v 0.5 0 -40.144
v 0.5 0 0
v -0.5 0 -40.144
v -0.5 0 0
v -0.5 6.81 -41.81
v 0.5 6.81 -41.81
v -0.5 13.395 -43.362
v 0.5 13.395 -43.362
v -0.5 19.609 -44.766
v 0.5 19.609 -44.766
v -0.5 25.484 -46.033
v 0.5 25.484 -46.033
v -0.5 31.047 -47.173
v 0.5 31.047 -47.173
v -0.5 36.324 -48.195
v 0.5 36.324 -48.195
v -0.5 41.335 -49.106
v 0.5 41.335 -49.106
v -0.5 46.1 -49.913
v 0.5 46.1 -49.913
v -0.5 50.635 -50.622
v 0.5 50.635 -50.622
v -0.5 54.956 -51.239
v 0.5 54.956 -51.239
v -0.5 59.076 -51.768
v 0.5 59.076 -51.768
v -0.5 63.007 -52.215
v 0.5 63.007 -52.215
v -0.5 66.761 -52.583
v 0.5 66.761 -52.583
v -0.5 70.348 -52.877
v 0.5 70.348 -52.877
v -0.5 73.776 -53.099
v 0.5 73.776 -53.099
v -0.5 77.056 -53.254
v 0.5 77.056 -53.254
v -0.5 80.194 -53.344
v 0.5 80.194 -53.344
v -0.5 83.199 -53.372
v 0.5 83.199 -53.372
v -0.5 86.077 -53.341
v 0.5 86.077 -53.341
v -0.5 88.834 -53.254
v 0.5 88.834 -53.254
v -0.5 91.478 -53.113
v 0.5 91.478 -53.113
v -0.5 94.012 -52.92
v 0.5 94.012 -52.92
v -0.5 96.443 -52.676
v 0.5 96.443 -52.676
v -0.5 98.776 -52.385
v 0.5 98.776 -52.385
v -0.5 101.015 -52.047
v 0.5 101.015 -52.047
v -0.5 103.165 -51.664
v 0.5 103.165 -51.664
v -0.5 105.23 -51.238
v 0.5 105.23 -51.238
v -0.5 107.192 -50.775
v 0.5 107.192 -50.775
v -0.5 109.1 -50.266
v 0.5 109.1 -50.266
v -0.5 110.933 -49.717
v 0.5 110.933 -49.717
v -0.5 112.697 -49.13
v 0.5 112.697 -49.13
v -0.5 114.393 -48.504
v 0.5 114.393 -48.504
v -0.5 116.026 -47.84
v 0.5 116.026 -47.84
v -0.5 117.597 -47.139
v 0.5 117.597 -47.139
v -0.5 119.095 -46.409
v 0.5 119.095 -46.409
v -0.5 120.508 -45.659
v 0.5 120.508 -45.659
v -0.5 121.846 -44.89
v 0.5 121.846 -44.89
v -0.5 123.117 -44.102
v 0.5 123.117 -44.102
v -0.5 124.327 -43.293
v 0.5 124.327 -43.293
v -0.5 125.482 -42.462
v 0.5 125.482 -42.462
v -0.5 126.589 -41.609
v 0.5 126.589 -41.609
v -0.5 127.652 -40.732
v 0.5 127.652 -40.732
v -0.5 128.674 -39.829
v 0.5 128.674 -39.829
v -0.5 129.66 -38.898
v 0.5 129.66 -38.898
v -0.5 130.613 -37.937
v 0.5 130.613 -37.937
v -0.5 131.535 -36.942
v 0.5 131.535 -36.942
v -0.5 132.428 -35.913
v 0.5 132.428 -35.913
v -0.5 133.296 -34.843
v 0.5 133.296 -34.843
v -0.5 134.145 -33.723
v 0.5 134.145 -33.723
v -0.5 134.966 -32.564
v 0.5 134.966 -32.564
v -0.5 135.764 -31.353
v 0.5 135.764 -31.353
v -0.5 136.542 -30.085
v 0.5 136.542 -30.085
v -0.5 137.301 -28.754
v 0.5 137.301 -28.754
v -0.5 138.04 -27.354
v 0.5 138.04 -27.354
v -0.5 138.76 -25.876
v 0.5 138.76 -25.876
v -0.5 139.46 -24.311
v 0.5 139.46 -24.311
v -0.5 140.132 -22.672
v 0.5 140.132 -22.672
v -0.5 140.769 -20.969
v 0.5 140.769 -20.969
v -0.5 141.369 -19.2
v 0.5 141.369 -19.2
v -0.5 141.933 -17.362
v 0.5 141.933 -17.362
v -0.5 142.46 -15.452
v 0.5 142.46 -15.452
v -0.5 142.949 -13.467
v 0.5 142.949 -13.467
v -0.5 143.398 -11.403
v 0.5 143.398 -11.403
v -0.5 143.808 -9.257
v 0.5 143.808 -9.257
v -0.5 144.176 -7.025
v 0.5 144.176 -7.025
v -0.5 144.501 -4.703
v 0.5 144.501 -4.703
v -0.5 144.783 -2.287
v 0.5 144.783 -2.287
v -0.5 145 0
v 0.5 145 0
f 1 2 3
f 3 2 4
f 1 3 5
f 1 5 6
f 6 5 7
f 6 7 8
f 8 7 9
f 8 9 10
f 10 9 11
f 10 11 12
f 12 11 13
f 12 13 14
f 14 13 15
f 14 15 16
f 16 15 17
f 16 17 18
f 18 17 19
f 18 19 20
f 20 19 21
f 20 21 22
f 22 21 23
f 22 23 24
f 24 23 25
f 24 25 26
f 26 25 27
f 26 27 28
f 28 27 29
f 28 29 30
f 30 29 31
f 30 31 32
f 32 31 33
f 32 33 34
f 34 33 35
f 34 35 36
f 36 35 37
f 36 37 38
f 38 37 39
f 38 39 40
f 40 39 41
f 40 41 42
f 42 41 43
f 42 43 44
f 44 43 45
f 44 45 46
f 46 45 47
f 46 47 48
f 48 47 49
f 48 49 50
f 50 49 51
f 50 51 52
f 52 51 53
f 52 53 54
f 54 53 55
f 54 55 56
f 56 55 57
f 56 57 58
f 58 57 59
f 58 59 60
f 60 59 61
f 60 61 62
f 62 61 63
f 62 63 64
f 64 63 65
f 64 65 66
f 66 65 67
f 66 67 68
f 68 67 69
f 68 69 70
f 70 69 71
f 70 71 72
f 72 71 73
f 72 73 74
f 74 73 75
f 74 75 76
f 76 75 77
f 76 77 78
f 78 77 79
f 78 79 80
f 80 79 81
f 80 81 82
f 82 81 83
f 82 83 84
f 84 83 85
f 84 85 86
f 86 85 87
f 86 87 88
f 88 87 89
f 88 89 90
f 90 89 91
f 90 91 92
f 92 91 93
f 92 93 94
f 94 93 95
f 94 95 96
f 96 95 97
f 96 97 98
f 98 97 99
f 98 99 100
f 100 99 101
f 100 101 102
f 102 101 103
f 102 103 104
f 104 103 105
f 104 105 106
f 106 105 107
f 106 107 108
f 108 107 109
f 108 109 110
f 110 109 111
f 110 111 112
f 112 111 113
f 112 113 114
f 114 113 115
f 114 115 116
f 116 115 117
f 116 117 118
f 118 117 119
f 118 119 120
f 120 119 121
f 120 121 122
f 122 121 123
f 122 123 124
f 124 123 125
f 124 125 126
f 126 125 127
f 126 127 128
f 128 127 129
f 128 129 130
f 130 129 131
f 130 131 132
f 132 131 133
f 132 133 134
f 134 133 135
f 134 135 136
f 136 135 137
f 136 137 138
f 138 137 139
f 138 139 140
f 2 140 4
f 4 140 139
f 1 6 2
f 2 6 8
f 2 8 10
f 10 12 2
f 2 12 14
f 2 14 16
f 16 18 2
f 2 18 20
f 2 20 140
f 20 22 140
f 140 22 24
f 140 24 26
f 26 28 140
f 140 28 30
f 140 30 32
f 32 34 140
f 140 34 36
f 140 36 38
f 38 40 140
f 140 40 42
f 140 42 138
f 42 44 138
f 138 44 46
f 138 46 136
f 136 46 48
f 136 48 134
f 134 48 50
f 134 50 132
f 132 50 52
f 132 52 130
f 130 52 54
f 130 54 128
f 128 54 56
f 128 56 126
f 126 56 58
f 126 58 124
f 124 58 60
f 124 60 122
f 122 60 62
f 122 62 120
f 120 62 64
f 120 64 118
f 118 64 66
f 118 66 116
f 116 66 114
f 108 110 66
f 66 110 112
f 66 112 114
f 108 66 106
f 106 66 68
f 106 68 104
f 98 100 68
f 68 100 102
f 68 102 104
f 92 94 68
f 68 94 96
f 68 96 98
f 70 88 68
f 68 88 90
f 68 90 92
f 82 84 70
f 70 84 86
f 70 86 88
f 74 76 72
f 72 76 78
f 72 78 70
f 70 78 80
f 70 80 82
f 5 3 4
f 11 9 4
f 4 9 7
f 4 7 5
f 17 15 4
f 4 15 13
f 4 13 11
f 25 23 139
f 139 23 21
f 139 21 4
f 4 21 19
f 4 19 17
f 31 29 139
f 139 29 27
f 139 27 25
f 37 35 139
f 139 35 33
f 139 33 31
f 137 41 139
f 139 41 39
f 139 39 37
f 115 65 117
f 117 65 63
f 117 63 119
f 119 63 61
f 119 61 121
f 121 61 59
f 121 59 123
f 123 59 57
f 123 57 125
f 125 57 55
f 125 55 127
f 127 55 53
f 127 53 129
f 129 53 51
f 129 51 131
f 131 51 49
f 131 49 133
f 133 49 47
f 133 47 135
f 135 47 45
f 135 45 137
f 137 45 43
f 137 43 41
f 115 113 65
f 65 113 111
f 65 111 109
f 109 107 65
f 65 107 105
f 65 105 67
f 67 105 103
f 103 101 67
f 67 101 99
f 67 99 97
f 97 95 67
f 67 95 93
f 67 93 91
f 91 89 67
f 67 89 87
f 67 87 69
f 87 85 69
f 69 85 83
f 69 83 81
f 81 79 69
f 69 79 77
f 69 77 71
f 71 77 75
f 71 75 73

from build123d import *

# Parameters (mm, degrees)
EXTRUDE_1_DEPTH   = 0.5
MOVE_BODY_1_ANGLE = 180
MOVE_BODY_2_ANGLE = 90
MOVE_BODY_3_ANGLE = 90


with BuildPart() as part:
    # 草图1 → 凸台-拉伸1 (new, symmetric)
    with BuildSketch(Plane.XY):
        with BuildLine():
            Line((15, 0), (145, 0))
            add(Edge.make_bspline(
                [(0, -40.143966229), (96.105563962, -64.070119442), (140.053769682, -58.282483629), (145, 0)],
                knots=[0, 0, 0, 0, 1, 1, 1, 1], degree=3))
            Line((0, -40.143966229), (0, 0))
            Line((0, 0), (15, 0))
        make_face()
    extrude(amount=EXTRUDE_1_DEPTH, both=True)


with BuildPart() as part_1:
    # Move Body 1: moved
    add(part.part.rotate(Axis((0, 0, 0), (0, 1, 0)), MOVE_BODY_1_ANGLE))


with BuildPart() as part_2:
    # Move Body 2: moved
    add(part_1.part.rotate(Axis((0, 0, 0), (0, 0, -1)), MOVE_BODY_2_ANGLE))


with BuildPart() as part_3:
    # Move Body 3: moved
    add(part_2.part.rotate(Axis((0, 0, 0), (0, -1, 0)), MOVE_BODY_3_ANGLE))


solid = part_3.part
